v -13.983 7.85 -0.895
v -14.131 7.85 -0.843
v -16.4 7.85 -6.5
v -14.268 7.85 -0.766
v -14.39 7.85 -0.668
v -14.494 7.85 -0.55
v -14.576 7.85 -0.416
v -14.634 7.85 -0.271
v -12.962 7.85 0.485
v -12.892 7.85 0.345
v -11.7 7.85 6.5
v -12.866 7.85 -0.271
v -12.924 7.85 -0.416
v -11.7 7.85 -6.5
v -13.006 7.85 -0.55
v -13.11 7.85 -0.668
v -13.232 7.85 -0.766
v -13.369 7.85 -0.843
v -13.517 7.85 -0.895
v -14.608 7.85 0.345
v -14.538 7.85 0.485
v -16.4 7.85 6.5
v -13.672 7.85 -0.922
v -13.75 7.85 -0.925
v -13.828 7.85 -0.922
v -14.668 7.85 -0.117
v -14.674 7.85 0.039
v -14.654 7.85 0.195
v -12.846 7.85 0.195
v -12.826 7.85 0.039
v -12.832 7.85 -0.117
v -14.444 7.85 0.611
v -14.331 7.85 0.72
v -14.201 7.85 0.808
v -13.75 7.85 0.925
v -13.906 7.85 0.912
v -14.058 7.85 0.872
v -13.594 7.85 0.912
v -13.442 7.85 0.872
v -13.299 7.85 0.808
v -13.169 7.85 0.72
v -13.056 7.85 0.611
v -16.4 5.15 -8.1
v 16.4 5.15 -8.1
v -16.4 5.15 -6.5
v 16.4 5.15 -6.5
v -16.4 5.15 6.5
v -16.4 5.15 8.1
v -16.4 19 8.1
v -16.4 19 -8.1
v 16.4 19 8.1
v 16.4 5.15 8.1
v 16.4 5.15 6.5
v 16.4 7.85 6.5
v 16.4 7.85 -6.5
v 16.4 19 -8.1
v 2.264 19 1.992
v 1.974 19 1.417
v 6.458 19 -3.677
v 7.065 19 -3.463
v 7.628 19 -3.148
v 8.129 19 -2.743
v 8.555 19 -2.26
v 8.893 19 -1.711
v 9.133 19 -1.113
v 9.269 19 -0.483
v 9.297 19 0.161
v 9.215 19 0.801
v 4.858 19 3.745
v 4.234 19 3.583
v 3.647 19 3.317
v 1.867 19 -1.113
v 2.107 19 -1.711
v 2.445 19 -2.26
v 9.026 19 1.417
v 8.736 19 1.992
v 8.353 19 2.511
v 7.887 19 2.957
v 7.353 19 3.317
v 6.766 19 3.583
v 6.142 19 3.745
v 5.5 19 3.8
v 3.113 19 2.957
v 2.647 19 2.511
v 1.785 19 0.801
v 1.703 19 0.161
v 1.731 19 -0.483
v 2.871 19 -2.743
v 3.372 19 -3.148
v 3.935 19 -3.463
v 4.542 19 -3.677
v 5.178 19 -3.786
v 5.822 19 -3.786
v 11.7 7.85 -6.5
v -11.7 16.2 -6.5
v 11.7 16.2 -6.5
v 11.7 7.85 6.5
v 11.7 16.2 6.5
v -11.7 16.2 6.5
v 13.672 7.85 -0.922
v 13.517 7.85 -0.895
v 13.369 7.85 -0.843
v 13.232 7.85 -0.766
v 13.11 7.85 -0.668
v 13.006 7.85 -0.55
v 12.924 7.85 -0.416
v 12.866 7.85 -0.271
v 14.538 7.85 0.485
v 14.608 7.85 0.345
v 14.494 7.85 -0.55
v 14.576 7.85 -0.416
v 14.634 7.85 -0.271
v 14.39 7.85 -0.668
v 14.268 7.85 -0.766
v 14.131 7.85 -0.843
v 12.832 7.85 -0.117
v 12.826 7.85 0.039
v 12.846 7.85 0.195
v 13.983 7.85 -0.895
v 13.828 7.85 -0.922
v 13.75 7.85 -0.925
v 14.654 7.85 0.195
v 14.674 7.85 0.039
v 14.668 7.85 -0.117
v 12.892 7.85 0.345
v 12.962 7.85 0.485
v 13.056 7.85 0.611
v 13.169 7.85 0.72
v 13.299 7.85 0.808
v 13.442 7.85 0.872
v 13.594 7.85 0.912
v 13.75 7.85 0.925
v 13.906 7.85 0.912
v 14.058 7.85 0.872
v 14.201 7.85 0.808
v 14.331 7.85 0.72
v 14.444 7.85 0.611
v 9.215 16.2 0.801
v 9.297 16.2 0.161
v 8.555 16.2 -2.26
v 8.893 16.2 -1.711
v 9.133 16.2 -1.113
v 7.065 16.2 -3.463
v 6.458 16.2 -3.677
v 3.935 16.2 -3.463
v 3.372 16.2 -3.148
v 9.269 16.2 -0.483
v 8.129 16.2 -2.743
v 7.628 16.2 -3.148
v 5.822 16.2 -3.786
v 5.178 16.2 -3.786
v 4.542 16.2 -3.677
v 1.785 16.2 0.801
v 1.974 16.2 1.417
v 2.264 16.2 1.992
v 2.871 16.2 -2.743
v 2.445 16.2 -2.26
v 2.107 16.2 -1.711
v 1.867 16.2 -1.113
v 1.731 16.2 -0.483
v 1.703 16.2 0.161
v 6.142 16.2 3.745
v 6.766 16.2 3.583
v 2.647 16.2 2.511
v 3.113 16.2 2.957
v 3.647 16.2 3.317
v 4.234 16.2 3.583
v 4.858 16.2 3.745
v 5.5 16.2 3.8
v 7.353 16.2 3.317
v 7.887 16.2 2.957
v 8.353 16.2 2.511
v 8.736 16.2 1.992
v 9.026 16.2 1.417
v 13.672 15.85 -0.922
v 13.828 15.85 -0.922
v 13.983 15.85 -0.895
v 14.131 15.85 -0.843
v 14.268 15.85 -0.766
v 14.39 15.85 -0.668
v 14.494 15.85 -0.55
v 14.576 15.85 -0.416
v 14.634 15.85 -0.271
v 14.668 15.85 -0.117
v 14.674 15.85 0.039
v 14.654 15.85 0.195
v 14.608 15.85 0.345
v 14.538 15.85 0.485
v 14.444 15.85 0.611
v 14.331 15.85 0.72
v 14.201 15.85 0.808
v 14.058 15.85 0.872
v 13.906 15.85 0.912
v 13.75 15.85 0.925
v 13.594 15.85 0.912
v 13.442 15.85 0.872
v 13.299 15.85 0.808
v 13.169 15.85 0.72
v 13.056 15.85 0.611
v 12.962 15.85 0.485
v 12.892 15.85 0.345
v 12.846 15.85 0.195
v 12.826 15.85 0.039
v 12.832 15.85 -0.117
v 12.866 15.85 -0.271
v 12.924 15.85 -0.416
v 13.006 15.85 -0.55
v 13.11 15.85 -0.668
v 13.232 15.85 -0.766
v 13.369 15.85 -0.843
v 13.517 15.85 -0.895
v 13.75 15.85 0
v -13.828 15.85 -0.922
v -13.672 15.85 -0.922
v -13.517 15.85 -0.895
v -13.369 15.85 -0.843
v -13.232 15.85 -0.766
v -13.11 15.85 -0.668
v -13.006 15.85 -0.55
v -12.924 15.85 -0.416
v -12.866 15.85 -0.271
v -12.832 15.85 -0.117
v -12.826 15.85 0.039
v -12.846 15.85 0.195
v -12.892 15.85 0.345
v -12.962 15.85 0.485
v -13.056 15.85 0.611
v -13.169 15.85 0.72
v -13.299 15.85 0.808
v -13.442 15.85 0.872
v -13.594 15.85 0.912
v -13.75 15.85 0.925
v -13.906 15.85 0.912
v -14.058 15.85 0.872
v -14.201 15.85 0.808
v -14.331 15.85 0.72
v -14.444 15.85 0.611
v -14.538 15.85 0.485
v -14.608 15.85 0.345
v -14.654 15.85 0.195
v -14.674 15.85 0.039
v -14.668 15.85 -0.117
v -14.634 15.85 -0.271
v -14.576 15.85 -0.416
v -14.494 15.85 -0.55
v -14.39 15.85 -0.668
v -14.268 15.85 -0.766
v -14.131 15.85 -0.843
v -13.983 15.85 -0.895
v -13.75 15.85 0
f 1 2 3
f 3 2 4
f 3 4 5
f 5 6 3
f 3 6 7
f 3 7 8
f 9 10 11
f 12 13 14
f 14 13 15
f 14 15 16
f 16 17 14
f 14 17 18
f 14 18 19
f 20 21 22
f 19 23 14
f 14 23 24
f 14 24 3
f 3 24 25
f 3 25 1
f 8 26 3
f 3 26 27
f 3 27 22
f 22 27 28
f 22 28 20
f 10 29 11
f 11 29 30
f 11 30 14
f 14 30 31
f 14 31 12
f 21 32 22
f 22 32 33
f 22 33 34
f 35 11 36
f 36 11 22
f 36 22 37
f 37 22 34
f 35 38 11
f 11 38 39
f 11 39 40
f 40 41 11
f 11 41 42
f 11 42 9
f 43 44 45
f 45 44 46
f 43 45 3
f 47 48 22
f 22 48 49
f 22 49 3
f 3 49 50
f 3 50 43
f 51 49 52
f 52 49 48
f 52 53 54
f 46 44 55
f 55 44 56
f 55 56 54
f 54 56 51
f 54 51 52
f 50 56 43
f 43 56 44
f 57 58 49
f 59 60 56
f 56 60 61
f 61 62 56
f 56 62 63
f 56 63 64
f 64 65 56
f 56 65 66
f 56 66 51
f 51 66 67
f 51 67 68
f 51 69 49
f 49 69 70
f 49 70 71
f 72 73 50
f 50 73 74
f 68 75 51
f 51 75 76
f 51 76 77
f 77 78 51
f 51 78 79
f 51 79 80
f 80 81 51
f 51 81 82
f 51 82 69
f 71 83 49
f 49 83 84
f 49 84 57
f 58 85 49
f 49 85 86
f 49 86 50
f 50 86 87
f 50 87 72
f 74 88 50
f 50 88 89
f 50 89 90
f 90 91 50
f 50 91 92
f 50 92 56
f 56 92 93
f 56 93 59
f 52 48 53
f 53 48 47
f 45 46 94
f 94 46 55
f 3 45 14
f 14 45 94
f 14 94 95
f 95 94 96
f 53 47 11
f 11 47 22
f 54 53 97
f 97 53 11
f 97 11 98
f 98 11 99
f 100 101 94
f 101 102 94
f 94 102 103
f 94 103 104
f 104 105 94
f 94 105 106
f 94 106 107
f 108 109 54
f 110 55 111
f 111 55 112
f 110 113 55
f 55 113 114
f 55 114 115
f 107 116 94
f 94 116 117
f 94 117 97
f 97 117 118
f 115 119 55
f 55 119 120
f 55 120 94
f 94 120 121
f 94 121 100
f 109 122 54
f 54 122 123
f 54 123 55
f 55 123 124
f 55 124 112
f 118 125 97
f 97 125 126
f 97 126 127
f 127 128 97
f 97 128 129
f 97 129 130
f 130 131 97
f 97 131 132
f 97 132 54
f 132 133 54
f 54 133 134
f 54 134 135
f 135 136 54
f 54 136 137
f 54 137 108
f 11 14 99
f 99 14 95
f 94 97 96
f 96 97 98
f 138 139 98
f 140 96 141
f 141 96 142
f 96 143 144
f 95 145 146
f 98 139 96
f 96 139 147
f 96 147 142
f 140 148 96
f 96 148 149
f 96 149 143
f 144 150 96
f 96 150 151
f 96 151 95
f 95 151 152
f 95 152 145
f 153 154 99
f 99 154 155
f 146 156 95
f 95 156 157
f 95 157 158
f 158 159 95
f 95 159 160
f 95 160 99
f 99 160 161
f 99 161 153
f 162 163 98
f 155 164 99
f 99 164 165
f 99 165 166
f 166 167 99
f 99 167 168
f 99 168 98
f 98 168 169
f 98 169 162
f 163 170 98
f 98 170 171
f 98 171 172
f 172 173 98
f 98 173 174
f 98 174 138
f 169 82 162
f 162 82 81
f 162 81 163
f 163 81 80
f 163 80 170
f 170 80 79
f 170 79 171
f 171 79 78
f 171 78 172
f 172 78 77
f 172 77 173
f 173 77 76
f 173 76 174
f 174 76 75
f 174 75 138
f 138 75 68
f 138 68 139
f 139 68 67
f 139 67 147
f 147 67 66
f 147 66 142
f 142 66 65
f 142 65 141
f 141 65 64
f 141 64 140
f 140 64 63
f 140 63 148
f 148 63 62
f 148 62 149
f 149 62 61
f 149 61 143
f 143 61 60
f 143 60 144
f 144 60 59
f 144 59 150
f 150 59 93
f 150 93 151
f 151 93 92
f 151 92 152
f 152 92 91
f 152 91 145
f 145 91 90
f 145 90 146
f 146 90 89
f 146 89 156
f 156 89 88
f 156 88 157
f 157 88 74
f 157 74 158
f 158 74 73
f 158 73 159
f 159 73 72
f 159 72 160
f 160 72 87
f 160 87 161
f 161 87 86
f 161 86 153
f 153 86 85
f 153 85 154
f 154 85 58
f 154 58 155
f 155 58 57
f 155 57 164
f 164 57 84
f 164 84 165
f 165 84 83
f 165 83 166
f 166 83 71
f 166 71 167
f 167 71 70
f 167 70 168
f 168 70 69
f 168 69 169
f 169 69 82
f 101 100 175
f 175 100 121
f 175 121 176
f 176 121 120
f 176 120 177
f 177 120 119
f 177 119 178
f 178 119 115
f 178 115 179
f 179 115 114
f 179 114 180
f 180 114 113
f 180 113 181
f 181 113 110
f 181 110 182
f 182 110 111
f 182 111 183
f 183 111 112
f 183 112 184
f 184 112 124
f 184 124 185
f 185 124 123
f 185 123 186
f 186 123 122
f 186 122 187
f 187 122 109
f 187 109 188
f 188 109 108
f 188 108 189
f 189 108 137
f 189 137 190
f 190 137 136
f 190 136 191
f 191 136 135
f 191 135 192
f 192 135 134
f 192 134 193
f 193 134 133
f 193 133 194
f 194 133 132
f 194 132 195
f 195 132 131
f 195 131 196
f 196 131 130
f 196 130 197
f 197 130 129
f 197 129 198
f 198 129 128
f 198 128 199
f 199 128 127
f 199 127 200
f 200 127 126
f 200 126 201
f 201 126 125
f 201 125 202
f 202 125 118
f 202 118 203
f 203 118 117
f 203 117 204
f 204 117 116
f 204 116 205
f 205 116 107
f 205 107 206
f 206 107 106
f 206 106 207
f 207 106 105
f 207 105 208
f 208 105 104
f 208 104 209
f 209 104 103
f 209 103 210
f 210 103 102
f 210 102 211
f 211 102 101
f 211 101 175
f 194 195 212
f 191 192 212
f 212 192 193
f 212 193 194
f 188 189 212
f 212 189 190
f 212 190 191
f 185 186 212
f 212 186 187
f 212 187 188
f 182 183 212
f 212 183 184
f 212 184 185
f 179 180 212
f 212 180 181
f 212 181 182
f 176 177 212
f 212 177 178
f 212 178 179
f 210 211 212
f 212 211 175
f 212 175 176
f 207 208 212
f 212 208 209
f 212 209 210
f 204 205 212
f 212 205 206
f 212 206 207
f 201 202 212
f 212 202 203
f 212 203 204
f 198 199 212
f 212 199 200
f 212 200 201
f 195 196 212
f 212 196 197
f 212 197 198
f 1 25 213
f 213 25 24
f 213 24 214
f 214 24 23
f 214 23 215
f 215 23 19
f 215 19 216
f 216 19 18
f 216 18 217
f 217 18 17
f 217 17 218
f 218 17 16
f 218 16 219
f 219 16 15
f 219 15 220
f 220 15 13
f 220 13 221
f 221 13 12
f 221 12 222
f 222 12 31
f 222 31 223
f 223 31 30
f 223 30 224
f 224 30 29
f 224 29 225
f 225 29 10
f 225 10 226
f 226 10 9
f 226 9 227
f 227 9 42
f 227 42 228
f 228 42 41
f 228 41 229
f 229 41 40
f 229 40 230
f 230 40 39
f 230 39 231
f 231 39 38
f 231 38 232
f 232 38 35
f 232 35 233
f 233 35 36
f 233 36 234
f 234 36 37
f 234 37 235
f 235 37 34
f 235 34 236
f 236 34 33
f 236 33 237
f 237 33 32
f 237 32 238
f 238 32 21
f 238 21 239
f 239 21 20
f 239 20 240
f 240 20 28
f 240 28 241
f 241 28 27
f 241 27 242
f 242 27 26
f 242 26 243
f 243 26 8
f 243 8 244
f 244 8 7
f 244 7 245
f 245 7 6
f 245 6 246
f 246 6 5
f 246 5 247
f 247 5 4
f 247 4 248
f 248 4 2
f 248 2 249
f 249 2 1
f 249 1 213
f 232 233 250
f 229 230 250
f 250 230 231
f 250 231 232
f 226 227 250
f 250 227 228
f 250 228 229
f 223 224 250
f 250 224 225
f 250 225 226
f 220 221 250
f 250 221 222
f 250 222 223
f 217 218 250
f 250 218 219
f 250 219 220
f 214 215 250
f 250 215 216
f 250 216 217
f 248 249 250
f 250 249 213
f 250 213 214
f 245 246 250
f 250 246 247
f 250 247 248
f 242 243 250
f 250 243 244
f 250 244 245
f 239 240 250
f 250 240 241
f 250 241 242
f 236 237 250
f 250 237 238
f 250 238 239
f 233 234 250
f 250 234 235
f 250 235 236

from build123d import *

# Parameters (mm, degrees)
BOSS_EXTRUDE1_START = 12.075
SKETCH1_W           = 32.8
SKETCH1_H           = 16.2
BOSS_EXTRUDE1_DEPTH = 6.925
CUT_EXTRUDE1_START  = 6.5
SKETCH2_W           = 32.8
SKETCH2_H           = 13
CUT_EXTRUDE1_DEPTH  = 1.35
CUT_EXTRUDE2_START  = 12.025
SKETCH3_W           = 23.4
SKETCH3_H           = 13
CUT_EXTRUDE2_DEPTH  = 4.175
CUT_EXTRUDE3_START  = 17.6
SKETCH4_R           = 3.8
CUT_EXTRUDE3_DEPTH  = 1.4
CUT_EXTRUDE4_START  = 11.84
SKETCH5_R           = 0.925
CUT_EXTRUDE4_DEPTH  = 4.01


with BuildPart() as part:
    # Sketch1 → Boss-Extrude1 (new, symmetric)
    with BuildSketch(Plane(origin=(0, 0, 0), x_dir=(1, 0, 0), z_dir=(0, 1, 0)).offset(BOSS_EXTRUDE1_START)):
        Rectangle(SKETCH1_W, SKETCH1_H)
    extrude(amount=BOSS_EXTRUDE1_DEPTH, both=True)

    # Sketch2 → Cut-Extrude1 (cut, symmetric)
    with BuildSketch(Plane(origin=(0, 0, 0), x_dir=(1, 0, 0), z_dir=(0, 1, 0)).offset(CUT_EXTRUDE1_START)):
        Rectangle(SKETCH2_W, SKETCH2_H)
    extrude(amount=CUT_EXTRUDE1_DEPTH, both=True, mode=Mode.SUBTRACT)

    # Sketch3 → Cut-Extrude2 (cut, symmetric)
    with BuildSketch(Plane(origin=(0, 0, 0), x_dir=(1, 0, 0), z_dir=(0, 1, 0)).offset(CUT_EXTRUDE2_START)):
        Rectangle(SKETCH3_W, SKETCH3_H)
    extrude(amount=CUT_EXTRUDE2_DEPTH, both=True, mode=Mode.SUBTRACT)

    # Sketch4 → Cut-Extrude3 (cut, symmetric)
    with BuildSketch(Plane(origin=(0, 0, 0), x_dir=(1, 0, 0), z_dir=(0, 1, 0)).offset(CUT_EXTRUDE3_START)):
        with Locations(Location((5.5, 0, 0), (0, 0, 270))):
            Circle(SKETCH4_R)
    extrude(amount=CUT_EXTRUDE3_DEPTH, both=True, mode=Mode.SUBTRACT)

    # Sketch5 → Cut-Extrude4 (cut, symmetric)
    with BuildSketch(Plane(origin=(0, 0, 0), x_dir=(1, 0, 0), z_dir=(0, 1, 0)).offset(CUT_EXTRUDE4_START)):
        with Locations(Location((-13.75, 0, 0), (0, 0, 270))):
            Circle(SKETCH5_R)
        with Locations(Location((13.75, 0, 0), (0, 0, 270))):
            Circle(SKETCH5_R)
    extrude(amount=CUT_EXTRUDE4_DEPTH, both=True, mode=Mode.SUBTRACT)


solid = part.part
